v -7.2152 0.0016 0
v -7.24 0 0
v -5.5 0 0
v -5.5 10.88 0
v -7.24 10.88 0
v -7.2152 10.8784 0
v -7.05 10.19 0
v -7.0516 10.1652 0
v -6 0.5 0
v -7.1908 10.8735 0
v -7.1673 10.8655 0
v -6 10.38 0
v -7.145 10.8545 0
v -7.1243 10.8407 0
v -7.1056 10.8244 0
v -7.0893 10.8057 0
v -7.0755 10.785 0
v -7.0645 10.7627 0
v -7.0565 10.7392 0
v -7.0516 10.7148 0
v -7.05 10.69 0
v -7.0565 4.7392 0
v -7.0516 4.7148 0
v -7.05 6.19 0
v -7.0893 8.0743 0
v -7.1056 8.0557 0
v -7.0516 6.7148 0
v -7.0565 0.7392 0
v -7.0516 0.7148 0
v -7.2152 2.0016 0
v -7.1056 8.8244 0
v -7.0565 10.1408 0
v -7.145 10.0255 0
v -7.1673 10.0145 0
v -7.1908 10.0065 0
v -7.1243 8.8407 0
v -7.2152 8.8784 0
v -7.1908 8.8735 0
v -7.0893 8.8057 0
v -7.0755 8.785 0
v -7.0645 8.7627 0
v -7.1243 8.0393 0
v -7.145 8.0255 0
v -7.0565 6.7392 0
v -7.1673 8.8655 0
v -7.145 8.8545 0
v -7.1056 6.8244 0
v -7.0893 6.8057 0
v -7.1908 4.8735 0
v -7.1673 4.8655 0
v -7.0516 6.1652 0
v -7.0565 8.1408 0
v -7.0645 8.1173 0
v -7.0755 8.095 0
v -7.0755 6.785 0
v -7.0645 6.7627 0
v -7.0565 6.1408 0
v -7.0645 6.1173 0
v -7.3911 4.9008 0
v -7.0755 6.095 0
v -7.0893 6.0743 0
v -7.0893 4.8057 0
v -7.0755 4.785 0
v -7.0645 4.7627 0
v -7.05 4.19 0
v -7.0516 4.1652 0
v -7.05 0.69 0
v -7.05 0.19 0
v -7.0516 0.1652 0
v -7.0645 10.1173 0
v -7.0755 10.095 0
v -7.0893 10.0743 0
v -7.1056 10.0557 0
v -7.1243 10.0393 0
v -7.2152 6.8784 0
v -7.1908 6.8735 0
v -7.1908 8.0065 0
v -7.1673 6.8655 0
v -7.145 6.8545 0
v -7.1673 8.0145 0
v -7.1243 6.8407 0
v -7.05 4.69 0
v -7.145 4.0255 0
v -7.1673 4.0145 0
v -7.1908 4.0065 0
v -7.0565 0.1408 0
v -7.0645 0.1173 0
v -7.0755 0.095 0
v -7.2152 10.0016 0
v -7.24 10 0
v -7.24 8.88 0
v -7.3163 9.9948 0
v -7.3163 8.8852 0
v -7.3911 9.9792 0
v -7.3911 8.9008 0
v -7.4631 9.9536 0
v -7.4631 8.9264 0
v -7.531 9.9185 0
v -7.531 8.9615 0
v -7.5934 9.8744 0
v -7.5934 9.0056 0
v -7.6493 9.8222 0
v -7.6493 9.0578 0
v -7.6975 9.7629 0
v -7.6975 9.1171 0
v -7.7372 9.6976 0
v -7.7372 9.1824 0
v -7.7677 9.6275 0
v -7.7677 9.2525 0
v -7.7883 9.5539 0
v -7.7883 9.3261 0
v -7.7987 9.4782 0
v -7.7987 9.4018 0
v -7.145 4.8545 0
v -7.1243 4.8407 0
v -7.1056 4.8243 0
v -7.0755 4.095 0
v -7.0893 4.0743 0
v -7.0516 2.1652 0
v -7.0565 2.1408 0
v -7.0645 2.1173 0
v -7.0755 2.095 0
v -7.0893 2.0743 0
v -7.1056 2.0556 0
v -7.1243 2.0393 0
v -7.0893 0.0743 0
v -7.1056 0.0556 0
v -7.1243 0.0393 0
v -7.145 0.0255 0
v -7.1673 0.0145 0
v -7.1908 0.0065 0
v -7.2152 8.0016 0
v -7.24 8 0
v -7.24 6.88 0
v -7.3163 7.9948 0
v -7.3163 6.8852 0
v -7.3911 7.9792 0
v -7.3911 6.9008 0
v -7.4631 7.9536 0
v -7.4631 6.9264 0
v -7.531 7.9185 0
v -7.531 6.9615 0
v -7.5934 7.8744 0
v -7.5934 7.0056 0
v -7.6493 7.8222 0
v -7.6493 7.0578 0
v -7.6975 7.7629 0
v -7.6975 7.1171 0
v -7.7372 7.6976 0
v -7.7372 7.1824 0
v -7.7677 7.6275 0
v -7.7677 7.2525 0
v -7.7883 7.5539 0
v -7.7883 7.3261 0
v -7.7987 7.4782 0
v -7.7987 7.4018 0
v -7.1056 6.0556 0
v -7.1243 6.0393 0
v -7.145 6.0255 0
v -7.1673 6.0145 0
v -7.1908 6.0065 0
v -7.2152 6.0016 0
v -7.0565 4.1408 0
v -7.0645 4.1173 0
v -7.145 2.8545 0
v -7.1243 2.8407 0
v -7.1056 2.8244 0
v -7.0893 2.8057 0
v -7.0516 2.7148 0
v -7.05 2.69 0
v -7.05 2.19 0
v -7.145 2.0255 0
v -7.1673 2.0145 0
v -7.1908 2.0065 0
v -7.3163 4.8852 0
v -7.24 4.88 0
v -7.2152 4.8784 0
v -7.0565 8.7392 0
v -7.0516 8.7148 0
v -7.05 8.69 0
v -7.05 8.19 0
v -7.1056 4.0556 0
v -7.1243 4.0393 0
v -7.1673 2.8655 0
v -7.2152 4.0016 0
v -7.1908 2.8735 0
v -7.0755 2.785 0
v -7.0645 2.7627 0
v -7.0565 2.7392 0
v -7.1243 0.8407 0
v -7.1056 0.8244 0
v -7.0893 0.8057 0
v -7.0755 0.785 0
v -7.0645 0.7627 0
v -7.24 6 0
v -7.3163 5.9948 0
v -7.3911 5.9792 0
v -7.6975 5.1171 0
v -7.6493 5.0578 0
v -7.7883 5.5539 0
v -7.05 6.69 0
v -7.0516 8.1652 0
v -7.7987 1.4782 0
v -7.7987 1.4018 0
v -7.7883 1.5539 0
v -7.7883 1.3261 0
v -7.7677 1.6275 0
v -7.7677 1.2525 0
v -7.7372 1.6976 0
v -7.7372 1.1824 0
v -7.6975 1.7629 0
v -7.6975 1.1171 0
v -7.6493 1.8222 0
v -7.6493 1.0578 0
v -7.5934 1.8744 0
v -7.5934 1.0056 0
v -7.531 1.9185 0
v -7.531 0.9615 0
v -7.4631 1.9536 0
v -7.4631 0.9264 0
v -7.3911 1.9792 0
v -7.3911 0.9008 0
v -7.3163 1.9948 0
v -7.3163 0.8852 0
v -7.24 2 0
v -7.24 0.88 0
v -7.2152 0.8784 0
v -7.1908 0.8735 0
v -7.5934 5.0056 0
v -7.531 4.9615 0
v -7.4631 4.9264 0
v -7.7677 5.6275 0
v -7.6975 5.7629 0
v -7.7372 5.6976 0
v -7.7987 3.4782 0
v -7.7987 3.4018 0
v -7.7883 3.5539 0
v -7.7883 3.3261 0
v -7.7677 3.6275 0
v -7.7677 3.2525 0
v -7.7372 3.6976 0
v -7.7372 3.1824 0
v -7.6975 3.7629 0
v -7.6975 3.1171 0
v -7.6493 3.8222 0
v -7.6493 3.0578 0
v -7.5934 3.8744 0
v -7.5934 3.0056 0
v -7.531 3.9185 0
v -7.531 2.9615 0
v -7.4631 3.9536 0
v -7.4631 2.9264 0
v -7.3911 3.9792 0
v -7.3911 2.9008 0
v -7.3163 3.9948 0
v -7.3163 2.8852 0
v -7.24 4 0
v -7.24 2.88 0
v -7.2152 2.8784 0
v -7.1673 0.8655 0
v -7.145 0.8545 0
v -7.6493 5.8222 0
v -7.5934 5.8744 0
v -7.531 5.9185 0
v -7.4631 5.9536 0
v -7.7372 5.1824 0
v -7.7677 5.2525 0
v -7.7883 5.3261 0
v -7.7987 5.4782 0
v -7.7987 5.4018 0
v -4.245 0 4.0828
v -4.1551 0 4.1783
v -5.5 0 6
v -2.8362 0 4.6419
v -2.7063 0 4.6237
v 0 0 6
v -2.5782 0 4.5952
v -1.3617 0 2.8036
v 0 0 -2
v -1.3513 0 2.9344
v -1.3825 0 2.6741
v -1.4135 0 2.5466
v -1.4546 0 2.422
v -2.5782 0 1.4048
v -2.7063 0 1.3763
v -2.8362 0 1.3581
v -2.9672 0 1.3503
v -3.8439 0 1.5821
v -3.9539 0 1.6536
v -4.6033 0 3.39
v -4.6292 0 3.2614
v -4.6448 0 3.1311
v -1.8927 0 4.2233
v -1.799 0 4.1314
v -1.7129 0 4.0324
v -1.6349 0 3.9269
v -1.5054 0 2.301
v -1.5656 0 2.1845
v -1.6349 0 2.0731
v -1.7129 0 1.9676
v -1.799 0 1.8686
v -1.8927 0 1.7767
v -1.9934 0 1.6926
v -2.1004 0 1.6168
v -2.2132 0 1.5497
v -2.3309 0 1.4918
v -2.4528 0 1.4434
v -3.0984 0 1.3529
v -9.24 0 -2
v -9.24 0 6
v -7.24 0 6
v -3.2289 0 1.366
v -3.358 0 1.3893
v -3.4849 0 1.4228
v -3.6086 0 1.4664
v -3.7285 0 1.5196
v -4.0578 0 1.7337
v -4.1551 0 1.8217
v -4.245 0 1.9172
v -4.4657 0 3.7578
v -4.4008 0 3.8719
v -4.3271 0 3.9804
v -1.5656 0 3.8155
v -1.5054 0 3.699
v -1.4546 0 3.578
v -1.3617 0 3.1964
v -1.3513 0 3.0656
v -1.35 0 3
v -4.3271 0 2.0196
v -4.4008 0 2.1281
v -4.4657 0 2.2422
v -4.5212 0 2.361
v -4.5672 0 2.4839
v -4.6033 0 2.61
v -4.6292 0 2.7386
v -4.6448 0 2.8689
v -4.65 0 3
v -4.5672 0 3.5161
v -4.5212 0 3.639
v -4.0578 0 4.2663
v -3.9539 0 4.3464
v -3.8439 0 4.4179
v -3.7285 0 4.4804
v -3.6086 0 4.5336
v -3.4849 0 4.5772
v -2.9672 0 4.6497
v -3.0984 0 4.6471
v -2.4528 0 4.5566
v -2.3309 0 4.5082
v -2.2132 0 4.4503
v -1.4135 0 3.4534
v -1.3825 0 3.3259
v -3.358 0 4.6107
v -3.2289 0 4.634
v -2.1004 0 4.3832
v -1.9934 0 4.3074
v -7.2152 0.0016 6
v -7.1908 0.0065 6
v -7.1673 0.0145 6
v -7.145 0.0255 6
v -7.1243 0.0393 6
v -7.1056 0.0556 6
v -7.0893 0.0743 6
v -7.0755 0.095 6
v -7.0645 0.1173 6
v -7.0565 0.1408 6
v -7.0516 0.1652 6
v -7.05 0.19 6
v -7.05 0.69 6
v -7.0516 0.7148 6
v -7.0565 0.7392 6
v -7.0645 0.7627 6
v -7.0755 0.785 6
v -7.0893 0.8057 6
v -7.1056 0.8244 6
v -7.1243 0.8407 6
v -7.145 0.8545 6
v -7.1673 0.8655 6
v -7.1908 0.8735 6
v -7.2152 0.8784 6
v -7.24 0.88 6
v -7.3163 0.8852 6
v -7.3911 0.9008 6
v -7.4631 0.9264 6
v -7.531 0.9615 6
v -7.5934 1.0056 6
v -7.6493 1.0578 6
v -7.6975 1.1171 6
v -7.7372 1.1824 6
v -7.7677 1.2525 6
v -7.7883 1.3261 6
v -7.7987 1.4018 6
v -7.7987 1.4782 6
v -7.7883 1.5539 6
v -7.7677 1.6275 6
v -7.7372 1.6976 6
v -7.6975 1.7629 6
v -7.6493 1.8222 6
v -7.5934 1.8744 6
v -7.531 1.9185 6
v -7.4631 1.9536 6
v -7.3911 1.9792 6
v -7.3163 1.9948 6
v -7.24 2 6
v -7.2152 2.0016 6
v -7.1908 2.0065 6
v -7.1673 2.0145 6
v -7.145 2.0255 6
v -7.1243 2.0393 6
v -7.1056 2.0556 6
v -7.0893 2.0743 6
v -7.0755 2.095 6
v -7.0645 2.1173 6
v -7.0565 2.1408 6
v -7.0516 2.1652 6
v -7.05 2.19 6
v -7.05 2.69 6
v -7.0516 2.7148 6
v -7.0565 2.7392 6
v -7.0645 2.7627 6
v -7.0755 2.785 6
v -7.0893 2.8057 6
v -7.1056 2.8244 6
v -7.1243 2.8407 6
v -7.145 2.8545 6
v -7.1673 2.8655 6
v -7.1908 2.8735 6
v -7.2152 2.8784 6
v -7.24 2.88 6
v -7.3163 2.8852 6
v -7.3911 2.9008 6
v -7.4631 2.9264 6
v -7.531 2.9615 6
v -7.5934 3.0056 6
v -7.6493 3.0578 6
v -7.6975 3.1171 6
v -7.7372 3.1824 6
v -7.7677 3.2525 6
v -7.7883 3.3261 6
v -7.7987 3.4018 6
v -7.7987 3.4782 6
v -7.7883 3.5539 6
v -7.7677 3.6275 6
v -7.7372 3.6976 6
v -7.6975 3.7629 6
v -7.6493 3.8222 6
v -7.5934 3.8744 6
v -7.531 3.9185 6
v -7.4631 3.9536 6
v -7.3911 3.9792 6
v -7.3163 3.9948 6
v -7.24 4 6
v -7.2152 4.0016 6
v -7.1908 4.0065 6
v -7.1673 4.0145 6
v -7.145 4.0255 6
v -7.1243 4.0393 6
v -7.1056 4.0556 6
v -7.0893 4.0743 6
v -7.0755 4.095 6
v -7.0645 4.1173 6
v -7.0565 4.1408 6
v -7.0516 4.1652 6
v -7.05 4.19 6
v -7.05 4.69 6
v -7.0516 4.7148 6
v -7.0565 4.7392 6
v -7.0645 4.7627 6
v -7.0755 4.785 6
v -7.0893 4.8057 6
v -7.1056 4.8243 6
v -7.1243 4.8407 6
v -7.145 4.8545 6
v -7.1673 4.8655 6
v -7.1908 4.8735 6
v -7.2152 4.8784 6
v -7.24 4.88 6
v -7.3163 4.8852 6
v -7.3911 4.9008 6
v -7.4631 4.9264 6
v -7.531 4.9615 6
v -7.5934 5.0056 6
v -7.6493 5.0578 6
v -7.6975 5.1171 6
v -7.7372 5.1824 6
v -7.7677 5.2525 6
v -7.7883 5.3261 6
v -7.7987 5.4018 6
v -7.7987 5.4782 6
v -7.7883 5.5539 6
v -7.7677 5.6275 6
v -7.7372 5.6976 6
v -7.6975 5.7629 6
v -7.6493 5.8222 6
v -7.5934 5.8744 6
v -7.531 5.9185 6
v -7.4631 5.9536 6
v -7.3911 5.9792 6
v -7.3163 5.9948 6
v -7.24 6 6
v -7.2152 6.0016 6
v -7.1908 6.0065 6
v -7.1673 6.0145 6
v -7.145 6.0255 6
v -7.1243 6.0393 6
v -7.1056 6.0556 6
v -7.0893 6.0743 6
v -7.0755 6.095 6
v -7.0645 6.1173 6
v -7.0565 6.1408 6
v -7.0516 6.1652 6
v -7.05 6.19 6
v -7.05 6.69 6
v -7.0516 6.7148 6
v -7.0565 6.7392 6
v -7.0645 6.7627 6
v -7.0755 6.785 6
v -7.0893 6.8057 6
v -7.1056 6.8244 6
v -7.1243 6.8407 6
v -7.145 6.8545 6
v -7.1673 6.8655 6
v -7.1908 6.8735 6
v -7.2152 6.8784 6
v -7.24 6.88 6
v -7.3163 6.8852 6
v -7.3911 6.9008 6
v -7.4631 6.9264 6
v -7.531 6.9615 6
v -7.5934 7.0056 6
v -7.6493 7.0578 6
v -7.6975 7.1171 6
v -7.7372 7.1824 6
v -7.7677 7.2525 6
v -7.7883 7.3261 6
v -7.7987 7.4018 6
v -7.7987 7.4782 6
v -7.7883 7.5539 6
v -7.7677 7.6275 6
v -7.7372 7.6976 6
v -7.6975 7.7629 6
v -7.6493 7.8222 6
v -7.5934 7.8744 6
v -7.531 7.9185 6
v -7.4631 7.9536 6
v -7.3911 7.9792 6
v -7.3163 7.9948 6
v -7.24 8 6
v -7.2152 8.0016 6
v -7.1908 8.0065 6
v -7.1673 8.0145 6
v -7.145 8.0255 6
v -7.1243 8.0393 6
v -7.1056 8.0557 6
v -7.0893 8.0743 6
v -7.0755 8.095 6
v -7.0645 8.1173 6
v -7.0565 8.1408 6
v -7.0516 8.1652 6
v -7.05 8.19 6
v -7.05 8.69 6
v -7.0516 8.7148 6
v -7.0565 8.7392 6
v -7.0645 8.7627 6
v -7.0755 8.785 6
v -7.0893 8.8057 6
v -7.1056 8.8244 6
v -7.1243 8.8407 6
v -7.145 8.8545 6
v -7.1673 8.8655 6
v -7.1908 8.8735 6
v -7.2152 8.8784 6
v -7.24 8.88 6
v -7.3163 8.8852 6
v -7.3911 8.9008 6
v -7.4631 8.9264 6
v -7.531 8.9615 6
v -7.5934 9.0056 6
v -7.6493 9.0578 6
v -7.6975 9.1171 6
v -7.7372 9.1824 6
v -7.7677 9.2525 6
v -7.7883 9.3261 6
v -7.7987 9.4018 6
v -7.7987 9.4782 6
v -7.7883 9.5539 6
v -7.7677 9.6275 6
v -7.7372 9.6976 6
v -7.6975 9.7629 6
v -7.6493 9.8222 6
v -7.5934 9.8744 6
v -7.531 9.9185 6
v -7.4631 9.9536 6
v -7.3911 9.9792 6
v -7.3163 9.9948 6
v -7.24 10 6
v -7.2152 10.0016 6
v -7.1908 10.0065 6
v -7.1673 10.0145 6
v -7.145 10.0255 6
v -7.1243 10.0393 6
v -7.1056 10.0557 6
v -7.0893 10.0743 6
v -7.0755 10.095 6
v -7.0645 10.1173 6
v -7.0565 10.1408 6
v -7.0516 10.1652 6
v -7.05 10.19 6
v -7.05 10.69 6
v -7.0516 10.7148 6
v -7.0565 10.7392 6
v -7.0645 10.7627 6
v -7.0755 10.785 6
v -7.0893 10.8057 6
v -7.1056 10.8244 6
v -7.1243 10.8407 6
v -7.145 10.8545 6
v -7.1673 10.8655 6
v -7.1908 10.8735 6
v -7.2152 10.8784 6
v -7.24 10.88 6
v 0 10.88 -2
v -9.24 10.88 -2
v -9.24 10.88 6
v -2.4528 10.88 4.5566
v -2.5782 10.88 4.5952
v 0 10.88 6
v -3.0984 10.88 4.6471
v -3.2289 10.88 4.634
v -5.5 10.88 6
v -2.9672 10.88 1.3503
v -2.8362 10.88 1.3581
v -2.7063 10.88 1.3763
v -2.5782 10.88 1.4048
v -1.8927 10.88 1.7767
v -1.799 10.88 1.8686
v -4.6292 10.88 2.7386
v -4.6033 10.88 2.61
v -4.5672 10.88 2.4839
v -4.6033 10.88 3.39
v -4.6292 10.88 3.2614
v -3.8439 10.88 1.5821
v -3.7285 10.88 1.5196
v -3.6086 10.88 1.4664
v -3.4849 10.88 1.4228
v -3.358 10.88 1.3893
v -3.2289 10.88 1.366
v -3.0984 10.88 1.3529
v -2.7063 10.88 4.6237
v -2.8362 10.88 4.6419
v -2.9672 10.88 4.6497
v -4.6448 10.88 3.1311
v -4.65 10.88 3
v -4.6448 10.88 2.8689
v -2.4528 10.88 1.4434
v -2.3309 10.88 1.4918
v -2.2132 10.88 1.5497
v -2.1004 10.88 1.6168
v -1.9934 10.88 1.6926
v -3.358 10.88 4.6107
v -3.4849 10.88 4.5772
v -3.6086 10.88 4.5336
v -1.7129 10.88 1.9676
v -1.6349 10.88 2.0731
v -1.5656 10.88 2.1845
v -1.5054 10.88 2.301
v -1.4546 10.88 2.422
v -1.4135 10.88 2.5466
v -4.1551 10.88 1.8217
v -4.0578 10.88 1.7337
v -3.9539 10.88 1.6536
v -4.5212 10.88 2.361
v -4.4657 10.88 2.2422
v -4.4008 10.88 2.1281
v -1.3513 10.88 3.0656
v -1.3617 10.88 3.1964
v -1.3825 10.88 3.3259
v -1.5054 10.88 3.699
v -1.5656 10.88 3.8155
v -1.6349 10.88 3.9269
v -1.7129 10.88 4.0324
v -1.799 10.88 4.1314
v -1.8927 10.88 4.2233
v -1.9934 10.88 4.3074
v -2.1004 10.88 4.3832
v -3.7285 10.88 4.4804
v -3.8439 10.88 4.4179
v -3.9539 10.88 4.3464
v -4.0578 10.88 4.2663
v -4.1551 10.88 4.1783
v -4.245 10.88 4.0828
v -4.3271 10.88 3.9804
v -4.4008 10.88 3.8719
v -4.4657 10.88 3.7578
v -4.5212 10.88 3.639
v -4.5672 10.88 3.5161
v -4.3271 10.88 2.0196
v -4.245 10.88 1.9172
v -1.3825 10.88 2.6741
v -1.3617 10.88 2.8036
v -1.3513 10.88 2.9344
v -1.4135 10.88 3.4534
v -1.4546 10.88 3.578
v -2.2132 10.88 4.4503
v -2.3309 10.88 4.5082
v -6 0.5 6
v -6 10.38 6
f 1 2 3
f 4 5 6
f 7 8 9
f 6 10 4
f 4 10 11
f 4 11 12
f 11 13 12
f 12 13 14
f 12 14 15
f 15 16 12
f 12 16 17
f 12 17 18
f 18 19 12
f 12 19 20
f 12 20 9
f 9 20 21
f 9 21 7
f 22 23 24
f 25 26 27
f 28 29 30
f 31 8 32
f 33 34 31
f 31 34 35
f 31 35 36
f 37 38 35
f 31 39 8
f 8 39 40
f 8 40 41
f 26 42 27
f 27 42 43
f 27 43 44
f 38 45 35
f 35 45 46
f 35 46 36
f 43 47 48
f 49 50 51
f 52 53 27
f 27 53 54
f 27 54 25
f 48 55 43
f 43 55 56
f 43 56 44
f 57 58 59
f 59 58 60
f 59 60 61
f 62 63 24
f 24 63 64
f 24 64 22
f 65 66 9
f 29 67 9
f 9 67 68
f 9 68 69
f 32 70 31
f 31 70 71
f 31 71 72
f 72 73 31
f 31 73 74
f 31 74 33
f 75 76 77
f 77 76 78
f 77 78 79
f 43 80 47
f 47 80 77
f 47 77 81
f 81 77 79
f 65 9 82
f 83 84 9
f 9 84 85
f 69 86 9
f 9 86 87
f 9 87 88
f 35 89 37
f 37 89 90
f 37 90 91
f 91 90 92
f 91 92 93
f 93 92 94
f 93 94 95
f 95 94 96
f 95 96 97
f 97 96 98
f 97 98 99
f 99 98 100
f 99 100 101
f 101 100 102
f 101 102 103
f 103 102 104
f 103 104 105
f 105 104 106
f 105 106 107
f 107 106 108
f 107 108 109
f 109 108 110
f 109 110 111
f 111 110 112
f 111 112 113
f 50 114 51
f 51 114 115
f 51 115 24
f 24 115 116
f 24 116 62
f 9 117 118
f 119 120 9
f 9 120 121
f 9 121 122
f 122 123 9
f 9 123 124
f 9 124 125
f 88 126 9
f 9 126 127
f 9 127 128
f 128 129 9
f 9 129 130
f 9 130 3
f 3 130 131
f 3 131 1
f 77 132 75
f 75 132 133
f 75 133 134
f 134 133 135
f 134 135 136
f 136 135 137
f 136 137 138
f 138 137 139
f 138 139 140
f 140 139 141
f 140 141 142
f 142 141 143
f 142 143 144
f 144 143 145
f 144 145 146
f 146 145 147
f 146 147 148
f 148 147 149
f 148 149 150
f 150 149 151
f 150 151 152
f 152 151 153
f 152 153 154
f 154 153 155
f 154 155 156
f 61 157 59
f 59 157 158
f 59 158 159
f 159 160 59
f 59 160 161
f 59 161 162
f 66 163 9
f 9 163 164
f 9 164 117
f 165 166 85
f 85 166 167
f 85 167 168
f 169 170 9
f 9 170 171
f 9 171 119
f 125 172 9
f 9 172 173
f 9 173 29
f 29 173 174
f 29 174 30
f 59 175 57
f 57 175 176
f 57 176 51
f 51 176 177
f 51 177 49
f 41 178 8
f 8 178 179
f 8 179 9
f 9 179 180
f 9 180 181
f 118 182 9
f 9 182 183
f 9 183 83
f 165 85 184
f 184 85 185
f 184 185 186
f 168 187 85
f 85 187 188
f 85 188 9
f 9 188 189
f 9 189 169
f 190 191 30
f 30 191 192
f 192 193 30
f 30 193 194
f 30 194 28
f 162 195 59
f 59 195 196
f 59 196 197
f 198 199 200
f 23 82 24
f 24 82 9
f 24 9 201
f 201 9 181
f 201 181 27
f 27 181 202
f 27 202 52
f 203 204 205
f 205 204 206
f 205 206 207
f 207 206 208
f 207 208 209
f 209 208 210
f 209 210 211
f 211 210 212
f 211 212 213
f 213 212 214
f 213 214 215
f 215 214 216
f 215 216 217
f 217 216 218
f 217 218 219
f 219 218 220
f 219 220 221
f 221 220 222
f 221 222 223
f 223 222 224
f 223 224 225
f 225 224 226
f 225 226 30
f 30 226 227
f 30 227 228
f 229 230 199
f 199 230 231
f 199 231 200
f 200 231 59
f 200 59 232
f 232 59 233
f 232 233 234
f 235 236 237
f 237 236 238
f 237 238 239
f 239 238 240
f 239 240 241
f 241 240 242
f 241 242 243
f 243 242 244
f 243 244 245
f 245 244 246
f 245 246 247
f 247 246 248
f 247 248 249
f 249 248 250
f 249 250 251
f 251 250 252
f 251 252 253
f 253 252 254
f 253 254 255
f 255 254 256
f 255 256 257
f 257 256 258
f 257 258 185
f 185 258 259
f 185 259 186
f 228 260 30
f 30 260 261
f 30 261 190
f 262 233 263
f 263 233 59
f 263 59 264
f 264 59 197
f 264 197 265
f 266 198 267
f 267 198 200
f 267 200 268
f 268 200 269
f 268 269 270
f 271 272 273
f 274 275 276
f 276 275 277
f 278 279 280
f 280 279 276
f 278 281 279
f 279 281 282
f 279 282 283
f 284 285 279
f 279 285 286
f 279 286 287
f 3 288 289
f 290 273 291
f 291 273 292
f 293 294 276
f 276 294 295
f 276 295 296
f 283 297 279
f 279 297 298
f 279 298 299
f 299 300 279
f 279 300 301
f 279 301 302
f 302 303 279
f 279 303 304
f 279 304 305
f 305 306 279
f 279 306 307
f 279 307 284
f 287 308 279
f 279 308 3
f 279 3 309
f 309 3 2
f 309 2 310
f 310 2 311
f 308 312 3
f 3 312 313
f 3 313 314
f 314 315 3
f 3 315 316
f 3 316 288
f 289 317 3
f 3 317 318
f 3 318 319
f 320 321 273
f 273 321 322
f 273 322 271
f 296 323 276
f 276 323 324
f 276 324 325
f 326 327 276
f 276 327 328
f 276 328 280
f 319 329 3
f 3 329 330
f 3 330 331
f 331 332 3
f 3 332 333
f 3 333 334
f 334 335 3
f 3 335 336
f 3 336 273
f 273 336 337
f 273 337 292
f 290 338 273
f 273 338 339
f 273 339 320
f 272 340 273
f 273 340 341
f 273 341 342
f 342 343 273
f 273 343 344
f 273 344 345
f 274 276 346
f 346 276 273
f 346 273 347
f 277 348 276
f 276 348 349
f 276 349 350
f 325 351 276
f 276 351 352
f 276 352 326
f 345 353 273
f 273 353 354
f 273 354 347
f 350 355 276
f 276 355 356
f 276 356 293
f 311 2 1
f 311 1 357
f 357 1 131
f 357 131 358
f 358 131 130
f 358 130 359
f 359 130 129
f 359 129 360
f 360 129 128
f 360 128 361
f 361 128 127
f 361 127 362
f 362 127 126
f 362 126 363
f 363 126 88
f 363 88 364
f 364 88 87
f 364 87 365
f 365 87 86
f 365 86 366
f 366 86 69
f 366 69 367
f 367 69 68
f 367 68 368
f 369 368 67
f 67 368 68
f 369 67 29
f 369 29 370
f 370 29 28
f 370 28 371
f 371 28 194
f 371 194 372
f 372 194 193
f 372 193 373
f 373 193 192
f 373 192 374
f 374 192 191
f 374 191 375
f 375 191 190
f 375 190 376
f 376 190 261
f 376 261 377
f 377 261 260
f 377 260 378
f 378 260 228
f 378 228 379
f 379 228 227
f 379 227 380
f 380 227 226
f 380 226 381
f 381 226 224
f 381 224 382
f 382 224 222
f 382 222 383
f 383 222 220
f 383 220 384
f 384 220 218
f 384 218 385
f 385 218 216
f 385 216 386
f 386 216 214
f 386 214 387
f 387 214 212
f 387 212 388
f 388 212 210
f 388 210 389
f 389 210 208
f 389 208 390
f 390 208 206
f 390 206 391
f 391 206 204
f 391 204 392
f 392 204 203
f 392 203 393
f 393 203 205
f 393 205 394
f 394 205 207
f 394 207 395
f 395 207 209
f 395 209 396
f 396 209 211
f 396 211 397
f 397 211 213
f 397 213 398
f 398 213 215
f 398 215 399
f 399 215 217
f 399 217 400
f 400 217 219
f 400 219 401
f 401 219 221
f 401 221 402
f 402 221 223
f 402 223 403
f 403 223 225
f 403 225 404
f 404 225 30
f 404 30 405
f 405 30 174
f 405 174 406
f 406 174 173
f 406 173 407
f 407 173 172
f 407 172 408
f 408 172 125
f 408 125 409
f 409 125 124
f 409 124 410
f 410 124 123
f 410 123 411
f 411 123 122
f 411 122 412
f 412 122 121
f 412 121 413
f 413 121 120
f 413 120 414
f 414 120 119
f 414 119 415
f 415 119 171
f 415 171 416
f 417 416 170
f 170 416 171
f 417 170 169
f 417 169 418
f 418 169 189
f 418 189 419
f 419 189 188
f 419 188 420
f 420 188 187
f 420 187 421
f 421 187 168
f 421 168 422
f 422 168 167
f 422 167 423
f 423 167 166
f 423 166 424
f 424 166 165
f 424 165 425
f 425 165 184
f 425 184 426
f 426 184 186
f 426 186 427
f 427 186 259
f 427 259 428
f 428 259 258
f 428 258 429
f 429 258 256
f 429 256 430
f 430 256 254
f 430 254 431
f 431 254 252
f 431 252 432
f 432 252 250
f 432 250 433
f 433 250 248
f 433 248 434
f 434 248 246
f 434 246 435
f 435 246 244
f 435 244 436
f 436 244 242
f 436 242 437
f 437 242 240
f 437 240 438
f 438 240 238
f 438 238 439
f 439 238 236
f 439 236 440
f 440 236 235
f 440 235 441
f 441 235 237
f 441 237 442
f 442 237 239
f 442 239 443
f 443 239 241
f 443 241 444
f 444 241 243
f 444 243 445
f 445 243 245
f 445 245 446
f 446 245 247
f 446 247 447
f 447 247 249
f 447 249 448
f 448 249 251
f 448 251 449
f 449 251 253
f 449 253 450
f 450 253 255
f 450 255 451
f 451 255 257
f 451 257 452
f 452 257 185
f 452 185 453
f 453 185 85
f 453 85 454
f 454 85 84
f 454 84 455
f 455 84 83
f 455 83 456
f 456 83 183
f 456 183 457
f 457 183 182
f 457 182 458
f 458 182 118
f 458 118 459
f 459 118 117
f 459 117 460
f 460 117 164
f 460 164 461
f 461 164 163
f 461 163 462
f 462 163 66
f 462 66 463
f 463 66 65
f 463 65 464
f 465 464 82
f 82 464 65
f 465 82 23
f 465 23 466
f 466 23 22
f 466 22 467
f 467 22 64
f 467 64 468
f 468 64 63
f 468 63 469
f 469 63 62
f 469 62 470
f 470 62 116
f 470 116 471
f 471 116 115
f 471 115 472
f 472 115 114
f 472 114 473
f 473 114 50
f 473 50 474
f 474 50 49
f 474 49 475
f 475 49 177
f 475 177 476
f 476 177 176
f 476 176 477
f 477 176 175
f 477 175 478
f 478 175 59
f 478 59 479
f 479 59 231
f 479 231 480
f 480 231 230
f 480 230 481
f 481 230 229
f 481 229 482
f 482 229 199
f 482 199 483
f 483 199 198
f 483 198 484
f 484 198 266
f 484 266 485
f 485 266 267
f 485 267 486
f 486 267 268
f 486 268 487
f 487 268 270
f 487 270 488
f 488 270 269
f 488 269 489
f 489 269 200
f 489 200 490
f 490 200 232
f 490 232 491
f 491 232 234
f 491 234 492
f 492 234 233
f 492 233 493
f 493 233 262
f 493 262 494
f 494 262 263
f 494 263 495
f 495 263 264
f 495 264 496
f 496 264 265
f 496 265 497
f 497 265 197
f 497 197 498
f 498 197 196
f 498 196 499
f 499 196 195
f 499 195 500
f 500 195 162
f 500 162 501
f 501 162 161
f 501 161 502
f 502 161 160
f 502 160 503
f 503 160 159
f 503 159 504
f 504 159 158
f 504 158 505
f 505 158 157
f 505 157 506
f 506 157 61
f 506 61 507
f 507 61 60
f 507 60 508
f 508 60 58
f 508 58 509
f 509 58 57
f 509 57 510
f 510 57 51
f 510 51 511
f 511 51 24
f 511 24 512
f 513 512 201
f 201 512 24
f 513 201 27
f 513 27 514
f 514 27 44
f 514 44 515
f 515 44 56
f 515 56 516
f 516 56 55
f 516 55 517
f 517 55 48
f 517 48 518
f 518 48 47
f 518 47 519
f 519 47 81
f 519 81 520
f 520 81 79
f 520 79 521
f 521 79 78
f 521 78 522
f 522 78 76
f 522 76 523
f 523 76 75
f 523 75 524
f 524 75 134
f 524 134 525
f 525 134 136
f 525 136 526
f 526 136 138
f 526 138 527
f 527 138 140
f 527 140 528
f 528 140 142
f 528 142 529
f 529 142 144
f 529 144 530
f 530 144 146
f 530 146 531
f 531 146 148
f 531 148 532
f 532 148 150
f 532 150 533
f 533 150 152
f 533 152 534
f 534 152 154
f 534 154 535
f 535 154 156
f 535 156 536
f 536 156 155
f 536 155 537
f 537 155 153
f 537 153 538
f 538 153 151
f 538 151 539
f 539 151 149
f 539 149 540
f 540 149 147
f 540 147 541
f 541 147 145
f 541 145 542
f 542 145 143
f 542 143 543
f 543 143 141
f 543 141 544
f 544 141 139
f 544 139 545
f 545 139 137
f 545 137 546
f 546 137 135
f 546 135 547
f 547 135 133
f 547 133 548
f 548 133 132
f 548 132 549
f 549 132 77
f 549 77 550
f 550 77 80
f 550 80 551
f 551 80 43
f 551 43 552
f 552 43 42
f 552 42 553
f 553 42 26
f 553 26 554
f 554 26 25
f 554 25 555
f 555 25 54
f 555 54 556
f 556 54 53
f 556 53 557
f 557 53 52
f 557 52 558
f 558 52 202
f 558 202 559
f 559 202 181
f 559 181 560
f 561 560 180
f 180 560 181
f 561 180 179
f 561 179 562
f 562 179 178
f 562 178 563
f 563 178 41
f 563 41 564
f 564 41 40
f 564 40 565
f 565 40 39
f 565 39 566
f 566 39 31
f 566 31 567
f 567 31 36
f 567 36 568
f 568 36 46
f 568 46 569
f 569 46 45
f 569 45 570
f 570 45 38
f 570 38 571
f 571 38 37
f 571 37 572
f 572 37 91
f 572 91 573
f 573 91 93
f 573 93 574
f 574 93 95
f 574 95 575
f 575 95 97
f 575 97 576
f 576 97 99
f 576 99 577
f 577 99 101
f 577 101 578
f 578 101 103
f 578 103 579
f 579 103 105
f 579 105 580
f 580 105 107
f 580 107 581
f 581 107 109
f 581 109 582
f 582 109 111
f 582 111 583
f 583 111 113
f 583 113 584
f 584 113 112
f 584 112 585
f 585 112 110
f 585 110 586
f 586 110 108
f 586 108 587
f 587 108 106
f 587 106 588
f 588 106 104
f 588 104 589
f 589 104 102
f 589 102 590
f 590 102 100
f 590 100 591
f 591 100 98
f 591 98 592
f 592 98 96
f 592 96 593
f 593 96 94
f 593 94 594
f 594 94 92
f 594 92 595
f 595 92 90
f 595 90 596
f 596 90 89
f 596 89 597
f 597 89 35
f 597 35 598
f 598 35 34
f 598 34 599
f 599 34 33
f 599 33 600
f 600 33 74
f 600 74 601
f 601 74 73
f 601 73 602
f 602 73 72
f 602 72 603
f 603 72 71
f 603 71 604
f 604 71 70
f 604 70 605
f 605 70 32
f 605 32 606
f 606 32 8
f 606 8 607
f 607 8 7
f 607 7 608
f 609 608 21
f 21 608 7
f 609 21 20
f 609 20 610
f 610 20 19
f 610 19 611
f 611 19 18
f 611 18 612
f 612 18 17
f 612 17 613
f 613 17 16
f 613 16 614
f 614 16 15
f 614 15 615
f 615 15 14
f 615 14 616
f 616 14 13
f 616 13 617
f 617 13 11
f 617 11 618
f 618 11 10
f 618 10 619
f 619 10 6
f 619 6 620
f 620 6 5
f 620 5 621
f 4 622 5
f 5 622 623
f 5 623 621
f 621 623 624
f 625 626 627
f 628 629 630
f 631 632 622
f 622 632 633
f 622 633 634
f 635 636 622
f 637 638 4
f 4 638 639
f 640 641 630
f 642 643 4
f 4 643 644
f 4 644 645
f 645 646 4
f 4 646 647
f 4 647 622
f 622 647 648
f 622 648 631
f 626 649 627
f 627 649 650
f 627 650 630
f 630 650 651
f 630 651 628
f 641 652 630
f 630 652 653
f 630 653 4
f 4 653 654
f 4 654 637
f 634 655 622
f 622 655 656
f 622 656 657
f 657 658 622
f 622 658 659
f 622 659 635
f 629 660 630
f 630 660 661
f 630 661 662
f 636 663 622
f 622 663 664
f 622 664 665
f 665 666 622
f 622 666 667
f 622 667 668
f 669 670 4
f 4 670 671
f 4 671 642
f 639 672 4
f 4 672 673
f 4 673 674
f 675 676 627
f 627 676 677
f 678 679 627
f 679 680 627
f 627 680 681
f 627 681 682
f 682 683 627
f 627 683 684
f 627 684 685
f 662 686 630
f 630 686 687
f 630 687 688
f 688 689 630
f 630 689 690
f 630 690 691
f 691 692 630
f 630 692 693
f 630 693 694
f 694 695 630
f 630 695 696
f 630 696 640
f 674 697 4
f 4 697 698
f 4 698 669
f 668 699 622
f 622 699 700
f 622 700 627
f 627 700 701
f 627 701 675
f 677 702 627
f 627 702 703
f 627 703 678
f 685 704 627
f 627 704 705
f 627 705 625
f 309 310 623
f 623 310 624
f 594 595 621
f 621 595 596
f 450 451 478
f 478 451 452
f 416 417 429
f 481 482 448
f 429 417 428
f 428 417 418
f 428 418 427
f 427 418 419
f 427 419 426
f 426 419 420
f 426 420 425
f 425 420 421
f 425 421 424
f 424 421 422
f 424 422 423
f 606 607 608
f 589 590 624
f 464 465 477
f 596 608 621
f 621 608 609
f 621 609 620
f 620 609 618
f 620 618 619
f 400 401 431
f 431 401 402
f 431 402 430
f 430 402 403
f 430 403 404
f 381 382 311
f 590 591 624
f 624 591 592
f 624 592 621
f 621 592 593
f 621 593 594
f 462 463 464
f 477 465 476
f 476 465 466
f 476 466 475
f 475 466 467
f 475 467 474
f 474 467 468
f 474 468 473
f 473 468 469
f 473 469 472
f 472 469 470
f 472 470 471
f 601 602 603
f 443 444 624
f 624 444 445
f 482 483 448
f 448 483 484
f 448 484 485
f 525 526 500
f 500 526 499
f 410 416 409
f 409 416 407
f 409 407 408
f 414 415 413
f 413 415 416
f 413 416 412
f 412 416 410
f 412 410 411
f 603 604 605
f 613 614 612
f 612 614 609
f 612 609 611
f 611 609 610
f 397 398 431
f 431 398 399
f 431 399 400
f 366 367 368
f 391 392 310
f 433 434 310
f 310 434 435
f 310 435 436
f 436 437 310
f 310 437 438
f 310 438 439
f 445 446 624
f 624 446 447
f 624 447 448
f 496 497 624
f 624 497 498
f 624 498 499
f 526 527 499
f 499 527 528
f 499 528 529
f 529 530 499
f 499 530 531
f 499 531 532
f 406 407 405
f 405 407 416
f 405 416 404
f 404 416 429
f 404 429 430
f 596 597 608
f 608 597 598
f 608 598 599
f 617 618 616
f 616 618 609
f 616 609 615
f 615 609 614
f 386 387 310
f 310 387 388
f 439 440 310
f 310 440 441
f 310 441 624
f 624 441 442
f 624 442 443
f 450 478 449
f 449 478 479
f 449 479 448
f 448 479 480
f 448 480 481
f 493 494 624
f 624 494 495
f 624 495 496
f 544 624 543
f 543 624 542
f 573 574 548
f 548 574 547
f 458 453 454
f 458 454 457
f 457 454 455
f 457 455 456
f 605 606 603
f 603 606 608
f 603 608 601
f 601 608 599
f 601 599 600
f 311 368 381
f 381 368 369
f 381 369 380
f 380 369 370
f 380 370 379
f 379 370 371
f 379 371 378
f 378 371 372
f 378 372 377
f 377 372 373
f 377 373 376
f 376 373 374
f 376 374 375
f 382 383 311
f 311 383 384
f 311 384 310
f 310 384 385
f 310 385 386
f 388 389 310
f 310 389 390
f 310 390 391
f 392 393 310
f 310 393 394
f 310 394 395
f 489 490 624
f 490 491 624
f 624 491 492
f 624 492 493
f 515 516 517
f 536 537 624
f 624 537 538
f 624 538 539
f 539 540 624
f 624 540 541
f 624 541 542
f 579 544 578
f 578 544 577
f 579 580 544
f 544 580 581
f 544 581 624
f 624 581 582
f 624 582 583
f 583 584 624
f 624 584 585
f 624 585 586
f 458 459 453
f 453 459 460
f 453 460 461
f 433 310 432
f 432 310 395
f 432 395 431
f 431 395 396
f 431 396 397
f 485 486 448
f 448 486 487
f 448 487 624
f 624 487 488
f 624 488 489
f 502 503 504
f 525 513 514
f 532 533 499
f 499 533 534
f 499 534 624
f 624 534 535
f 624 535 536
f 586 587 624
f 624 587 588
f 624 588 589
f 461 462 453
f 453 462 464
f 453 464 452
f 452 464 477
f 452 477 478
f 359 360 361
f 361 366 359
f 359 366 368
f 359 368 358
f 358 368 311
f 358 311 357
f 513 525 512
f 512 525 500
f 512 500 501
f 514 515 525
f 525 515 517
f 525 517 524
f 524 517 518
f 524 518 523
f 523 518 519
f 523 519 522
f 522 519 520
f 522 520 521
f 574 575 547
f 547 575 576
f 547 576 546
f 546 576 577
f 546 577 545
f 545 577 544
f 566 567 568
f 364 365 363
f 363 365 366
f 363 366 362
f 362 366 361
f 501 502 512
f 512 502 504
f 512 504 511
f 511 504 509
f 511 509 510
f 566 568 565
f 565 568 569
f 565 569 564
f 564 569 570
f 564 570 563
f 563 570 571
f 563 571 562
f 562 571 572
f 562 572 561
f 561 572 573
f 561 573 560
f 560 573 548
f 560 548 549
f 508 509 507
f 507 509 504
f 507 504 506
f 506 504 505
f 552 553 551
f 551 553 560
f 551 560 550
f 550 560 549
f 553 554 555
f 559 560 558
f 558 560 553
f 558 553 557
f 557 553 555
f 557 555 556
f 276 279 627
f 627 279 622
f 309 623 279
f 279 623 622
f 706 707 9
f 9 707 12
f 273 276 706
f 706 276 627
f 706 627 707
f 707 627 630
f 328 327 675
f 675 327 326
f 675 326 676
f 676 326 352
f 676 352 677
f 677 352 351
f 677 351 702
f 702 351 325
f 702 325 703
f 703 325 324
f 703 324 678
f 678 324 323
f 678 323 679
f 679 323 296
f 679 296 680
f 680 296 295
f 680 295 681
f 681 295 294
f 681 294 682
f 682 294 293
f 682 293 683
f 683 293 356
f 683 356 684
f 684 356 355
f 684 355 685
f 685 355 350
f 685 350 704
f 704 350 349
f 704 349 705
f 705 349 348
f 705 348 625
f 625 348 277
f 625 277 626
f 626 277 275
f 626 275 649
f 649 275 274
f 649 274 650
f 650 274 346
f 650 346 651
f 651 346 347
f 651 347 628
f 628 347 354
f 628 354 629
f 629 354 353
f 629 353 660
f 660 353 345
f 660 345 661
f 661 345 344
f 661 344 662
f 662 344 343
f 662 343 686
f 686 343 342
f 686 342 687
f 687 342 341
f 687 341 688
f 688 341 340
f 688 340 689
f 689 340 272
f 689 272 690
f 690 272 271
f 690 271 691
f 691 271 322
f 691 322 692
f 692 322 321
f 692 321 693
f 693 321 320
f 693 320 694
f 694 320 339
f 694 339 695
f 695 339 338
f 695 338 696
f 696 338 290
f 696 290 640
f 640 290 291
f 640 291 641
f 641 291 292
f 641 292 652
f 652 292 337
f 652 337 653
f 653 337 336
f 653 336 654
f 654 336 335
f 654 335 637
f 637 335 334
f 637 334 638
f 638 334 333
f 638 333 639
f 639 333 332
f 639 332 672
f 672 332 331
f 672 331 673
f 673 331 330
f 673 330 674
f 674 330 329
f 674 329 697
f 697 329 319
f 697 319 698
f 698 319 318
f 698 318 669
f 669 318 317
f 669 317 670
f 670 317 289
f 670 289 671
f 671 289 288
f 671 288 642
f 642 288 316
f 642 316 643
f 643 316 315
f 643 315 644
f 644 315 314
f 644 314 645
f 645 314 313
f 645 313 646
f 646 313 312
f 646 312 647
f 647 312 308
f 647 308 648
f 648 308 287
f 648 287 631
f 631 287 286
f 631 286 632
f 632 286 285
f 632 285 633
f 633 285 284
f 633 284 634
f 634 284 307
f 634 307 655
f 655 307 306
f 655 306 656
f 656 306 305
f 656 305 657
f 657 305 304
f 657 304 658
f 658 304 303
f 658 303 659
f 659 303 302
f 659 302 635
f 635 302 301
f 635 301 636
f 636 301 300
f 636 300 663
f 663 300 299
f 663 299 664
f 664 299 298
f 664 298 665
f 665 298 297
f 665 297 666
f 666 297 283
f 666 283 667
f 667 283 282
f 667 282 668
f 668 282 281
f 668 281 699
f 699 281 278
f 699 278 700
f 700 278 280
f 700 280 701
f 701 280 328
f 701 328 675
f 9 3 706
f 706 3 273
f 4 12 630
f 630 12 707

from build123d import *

# Parameters (mm, degrees)
AUFSATZ_LINEAR_AUSTRAGEN1_DEPTH   = 6
AUFSATZ_LINEAR_AUSTRAGEN1_2_DEPTH = 6
SKIZZE4_W                         = 9.24
SKIZZE4_H                         = 10.88
AUFSATZ_LINEAR_AUSTRAGEN2_DEPTH   = 2
SKIZZE3_R                         = 1.65
SCHNITT_LINEAR_AUSTRAGEN1_DEPTH   = 10.88
FASE1_SIZE                        = 0.5


with BuildPart() as part:
    # Skizze1 → Aufsatz-Linear austragen1 (new body)
    with BuildSketch(Plane.XY):
        Polygon((0, 0), (0, 9.44), (0, 10.88), (-6, 10.88), (-6, 0), align=None)
    extrude(amount=AUFSATZ_LINEAR_AUSTRAGEN1_DEPTH)



with BuildPart() as body_2:
    # Skizze1 → Aufsatz-Linear austragen1 2 (new body)
    with BuildSketch(Plane.XY):
        with BuildLine():
            Line((-7.05, 10.19), (-7.05, 10.69))
            ThreePointArc((-7.05, 10.69), (-7.105649712, 10.824350288), (-7.24, 10.88))
            Line((-7.24, 10.88), (-9.24, 10.88))
            Line((-9.24, 10.88), (-9.24, 0))
            Line((-9.24, 0), (-7.24, 0))
            ThreePointArc((-7.24, 0), (-7.105649712, 0.055649712), (-7.05, 0.19))
            Line((-7.05, 0.19), (-7.05, 0.69))
            ThreePointArc((-7.05, 0.69), (-7.105649712, 0.824350288), (-7.24, 0.88))
            ThreePointArc((-7.24, 0.88), (-7.8, 1.44), (-7.24, 2))
            ThreePointArc((-7.24, 2), (-7.105649712, 2.055649712), (-7.05, 2.19))
            Line((-7.05, 2.19), (-7.05, 2.69))
            ThreePointArc((-7.05, 2.69), (-7.105649712, 2.824350288), (-7.24, 2.88))
            ThreePointArc((-7.24, 2.88), (-7.8, 3.44), (-7.24, 4))
            ThreePointArc((-7.24, 4), (-7.105649712, 4.055649712), (-7.05, 4.19))
            Line((-7.05, 4.19), (-7.05, 4.69))
            ThreePointArc((-7.05, 4.69), (-7.105649712, 4.824350288), (-7.24, 4.88))
            ThreePointArc((-7.24, 4.88), (-7.8, 5.44), (-7.24, 6))
            ThreePointArc((-7.24, 6), (-7.105649712, 6.055649712), (-7.05, 6.19))
            Line((-7.05, 6.19), (-7.05, 6.69))
            ThreePointArc((-7.05, 6.69), (-7.105649712, 6.824350288), (-7.24, 6.88))
            ThreePointArc((-7.24, 6.88), (-7.8, 7.44), (-7.24, 8))
            ThreePointArc((-7.24, 8), (-7.105649712, 8.055649712), (-7.05, 8.19))
            Line((-7.05, 8.19), (-7.05, 8.69))
            ThreePointArc((-7.05, 8.69), (-7.105649712, 8.824350288), (-7.24, 8.88))
            ThreePointArc((-7.24, 8.88), (-7.8, 9.44), (-7.24, 10))
            ThreePointArc((-7.24, 10), (-7.105649712, 10.055649712), (-7.05, 10.19))
        make_face()
    extrude(amount=AUFSATZ_LINEAR_AUSTRAGEN1_2_DEPTH)


with BuildPart() as part_1:
    add(part.part)

    add(body_2.part)  # Aufsatz-Linear austragen2 merges body 2
    # Skizze4 → Aufsatz-Linear austragen2 (add)
    with BuildSketch(Plane(origin=(0, 0, 0), x_dir=(-1, 0, 0), z_dir=(0, 0, -1))):
        with Locations((4.62, 5.44)):
            Rectangle(SKIZZE4_W, SKIZZE4_H)
    extrude(amount=AUFSATZ_LINEAR_AUSTRAGEN2_DEPTH)

    # Skizze3 → Schnitt-Linear austragen1 (cut)
    with BuildSketch(Plane(origin=(0, 10.88, 0), x_dir=(1, 0, 0), z_dir=(0, 1, 0))):
        with Locations(Location((-3, -3, 0), (0, 0, 180))):
            Circle(SKIZZE3_R)
    extrude(amount=-SCHNITT_LINEAR_AUSTRAGEN1_DEPTH, mode=Mode.SUBTRACT)

    # Fase1
    fase1_edges = [part_1.edges().sort_by_distance(p)[0] for p in [
        (-6, 10.88, 3),
        (-6, 0, 3),
    ]]
    chamfer(fase1_edges, length=FASE1_SIZE)


solid = part_1.part
